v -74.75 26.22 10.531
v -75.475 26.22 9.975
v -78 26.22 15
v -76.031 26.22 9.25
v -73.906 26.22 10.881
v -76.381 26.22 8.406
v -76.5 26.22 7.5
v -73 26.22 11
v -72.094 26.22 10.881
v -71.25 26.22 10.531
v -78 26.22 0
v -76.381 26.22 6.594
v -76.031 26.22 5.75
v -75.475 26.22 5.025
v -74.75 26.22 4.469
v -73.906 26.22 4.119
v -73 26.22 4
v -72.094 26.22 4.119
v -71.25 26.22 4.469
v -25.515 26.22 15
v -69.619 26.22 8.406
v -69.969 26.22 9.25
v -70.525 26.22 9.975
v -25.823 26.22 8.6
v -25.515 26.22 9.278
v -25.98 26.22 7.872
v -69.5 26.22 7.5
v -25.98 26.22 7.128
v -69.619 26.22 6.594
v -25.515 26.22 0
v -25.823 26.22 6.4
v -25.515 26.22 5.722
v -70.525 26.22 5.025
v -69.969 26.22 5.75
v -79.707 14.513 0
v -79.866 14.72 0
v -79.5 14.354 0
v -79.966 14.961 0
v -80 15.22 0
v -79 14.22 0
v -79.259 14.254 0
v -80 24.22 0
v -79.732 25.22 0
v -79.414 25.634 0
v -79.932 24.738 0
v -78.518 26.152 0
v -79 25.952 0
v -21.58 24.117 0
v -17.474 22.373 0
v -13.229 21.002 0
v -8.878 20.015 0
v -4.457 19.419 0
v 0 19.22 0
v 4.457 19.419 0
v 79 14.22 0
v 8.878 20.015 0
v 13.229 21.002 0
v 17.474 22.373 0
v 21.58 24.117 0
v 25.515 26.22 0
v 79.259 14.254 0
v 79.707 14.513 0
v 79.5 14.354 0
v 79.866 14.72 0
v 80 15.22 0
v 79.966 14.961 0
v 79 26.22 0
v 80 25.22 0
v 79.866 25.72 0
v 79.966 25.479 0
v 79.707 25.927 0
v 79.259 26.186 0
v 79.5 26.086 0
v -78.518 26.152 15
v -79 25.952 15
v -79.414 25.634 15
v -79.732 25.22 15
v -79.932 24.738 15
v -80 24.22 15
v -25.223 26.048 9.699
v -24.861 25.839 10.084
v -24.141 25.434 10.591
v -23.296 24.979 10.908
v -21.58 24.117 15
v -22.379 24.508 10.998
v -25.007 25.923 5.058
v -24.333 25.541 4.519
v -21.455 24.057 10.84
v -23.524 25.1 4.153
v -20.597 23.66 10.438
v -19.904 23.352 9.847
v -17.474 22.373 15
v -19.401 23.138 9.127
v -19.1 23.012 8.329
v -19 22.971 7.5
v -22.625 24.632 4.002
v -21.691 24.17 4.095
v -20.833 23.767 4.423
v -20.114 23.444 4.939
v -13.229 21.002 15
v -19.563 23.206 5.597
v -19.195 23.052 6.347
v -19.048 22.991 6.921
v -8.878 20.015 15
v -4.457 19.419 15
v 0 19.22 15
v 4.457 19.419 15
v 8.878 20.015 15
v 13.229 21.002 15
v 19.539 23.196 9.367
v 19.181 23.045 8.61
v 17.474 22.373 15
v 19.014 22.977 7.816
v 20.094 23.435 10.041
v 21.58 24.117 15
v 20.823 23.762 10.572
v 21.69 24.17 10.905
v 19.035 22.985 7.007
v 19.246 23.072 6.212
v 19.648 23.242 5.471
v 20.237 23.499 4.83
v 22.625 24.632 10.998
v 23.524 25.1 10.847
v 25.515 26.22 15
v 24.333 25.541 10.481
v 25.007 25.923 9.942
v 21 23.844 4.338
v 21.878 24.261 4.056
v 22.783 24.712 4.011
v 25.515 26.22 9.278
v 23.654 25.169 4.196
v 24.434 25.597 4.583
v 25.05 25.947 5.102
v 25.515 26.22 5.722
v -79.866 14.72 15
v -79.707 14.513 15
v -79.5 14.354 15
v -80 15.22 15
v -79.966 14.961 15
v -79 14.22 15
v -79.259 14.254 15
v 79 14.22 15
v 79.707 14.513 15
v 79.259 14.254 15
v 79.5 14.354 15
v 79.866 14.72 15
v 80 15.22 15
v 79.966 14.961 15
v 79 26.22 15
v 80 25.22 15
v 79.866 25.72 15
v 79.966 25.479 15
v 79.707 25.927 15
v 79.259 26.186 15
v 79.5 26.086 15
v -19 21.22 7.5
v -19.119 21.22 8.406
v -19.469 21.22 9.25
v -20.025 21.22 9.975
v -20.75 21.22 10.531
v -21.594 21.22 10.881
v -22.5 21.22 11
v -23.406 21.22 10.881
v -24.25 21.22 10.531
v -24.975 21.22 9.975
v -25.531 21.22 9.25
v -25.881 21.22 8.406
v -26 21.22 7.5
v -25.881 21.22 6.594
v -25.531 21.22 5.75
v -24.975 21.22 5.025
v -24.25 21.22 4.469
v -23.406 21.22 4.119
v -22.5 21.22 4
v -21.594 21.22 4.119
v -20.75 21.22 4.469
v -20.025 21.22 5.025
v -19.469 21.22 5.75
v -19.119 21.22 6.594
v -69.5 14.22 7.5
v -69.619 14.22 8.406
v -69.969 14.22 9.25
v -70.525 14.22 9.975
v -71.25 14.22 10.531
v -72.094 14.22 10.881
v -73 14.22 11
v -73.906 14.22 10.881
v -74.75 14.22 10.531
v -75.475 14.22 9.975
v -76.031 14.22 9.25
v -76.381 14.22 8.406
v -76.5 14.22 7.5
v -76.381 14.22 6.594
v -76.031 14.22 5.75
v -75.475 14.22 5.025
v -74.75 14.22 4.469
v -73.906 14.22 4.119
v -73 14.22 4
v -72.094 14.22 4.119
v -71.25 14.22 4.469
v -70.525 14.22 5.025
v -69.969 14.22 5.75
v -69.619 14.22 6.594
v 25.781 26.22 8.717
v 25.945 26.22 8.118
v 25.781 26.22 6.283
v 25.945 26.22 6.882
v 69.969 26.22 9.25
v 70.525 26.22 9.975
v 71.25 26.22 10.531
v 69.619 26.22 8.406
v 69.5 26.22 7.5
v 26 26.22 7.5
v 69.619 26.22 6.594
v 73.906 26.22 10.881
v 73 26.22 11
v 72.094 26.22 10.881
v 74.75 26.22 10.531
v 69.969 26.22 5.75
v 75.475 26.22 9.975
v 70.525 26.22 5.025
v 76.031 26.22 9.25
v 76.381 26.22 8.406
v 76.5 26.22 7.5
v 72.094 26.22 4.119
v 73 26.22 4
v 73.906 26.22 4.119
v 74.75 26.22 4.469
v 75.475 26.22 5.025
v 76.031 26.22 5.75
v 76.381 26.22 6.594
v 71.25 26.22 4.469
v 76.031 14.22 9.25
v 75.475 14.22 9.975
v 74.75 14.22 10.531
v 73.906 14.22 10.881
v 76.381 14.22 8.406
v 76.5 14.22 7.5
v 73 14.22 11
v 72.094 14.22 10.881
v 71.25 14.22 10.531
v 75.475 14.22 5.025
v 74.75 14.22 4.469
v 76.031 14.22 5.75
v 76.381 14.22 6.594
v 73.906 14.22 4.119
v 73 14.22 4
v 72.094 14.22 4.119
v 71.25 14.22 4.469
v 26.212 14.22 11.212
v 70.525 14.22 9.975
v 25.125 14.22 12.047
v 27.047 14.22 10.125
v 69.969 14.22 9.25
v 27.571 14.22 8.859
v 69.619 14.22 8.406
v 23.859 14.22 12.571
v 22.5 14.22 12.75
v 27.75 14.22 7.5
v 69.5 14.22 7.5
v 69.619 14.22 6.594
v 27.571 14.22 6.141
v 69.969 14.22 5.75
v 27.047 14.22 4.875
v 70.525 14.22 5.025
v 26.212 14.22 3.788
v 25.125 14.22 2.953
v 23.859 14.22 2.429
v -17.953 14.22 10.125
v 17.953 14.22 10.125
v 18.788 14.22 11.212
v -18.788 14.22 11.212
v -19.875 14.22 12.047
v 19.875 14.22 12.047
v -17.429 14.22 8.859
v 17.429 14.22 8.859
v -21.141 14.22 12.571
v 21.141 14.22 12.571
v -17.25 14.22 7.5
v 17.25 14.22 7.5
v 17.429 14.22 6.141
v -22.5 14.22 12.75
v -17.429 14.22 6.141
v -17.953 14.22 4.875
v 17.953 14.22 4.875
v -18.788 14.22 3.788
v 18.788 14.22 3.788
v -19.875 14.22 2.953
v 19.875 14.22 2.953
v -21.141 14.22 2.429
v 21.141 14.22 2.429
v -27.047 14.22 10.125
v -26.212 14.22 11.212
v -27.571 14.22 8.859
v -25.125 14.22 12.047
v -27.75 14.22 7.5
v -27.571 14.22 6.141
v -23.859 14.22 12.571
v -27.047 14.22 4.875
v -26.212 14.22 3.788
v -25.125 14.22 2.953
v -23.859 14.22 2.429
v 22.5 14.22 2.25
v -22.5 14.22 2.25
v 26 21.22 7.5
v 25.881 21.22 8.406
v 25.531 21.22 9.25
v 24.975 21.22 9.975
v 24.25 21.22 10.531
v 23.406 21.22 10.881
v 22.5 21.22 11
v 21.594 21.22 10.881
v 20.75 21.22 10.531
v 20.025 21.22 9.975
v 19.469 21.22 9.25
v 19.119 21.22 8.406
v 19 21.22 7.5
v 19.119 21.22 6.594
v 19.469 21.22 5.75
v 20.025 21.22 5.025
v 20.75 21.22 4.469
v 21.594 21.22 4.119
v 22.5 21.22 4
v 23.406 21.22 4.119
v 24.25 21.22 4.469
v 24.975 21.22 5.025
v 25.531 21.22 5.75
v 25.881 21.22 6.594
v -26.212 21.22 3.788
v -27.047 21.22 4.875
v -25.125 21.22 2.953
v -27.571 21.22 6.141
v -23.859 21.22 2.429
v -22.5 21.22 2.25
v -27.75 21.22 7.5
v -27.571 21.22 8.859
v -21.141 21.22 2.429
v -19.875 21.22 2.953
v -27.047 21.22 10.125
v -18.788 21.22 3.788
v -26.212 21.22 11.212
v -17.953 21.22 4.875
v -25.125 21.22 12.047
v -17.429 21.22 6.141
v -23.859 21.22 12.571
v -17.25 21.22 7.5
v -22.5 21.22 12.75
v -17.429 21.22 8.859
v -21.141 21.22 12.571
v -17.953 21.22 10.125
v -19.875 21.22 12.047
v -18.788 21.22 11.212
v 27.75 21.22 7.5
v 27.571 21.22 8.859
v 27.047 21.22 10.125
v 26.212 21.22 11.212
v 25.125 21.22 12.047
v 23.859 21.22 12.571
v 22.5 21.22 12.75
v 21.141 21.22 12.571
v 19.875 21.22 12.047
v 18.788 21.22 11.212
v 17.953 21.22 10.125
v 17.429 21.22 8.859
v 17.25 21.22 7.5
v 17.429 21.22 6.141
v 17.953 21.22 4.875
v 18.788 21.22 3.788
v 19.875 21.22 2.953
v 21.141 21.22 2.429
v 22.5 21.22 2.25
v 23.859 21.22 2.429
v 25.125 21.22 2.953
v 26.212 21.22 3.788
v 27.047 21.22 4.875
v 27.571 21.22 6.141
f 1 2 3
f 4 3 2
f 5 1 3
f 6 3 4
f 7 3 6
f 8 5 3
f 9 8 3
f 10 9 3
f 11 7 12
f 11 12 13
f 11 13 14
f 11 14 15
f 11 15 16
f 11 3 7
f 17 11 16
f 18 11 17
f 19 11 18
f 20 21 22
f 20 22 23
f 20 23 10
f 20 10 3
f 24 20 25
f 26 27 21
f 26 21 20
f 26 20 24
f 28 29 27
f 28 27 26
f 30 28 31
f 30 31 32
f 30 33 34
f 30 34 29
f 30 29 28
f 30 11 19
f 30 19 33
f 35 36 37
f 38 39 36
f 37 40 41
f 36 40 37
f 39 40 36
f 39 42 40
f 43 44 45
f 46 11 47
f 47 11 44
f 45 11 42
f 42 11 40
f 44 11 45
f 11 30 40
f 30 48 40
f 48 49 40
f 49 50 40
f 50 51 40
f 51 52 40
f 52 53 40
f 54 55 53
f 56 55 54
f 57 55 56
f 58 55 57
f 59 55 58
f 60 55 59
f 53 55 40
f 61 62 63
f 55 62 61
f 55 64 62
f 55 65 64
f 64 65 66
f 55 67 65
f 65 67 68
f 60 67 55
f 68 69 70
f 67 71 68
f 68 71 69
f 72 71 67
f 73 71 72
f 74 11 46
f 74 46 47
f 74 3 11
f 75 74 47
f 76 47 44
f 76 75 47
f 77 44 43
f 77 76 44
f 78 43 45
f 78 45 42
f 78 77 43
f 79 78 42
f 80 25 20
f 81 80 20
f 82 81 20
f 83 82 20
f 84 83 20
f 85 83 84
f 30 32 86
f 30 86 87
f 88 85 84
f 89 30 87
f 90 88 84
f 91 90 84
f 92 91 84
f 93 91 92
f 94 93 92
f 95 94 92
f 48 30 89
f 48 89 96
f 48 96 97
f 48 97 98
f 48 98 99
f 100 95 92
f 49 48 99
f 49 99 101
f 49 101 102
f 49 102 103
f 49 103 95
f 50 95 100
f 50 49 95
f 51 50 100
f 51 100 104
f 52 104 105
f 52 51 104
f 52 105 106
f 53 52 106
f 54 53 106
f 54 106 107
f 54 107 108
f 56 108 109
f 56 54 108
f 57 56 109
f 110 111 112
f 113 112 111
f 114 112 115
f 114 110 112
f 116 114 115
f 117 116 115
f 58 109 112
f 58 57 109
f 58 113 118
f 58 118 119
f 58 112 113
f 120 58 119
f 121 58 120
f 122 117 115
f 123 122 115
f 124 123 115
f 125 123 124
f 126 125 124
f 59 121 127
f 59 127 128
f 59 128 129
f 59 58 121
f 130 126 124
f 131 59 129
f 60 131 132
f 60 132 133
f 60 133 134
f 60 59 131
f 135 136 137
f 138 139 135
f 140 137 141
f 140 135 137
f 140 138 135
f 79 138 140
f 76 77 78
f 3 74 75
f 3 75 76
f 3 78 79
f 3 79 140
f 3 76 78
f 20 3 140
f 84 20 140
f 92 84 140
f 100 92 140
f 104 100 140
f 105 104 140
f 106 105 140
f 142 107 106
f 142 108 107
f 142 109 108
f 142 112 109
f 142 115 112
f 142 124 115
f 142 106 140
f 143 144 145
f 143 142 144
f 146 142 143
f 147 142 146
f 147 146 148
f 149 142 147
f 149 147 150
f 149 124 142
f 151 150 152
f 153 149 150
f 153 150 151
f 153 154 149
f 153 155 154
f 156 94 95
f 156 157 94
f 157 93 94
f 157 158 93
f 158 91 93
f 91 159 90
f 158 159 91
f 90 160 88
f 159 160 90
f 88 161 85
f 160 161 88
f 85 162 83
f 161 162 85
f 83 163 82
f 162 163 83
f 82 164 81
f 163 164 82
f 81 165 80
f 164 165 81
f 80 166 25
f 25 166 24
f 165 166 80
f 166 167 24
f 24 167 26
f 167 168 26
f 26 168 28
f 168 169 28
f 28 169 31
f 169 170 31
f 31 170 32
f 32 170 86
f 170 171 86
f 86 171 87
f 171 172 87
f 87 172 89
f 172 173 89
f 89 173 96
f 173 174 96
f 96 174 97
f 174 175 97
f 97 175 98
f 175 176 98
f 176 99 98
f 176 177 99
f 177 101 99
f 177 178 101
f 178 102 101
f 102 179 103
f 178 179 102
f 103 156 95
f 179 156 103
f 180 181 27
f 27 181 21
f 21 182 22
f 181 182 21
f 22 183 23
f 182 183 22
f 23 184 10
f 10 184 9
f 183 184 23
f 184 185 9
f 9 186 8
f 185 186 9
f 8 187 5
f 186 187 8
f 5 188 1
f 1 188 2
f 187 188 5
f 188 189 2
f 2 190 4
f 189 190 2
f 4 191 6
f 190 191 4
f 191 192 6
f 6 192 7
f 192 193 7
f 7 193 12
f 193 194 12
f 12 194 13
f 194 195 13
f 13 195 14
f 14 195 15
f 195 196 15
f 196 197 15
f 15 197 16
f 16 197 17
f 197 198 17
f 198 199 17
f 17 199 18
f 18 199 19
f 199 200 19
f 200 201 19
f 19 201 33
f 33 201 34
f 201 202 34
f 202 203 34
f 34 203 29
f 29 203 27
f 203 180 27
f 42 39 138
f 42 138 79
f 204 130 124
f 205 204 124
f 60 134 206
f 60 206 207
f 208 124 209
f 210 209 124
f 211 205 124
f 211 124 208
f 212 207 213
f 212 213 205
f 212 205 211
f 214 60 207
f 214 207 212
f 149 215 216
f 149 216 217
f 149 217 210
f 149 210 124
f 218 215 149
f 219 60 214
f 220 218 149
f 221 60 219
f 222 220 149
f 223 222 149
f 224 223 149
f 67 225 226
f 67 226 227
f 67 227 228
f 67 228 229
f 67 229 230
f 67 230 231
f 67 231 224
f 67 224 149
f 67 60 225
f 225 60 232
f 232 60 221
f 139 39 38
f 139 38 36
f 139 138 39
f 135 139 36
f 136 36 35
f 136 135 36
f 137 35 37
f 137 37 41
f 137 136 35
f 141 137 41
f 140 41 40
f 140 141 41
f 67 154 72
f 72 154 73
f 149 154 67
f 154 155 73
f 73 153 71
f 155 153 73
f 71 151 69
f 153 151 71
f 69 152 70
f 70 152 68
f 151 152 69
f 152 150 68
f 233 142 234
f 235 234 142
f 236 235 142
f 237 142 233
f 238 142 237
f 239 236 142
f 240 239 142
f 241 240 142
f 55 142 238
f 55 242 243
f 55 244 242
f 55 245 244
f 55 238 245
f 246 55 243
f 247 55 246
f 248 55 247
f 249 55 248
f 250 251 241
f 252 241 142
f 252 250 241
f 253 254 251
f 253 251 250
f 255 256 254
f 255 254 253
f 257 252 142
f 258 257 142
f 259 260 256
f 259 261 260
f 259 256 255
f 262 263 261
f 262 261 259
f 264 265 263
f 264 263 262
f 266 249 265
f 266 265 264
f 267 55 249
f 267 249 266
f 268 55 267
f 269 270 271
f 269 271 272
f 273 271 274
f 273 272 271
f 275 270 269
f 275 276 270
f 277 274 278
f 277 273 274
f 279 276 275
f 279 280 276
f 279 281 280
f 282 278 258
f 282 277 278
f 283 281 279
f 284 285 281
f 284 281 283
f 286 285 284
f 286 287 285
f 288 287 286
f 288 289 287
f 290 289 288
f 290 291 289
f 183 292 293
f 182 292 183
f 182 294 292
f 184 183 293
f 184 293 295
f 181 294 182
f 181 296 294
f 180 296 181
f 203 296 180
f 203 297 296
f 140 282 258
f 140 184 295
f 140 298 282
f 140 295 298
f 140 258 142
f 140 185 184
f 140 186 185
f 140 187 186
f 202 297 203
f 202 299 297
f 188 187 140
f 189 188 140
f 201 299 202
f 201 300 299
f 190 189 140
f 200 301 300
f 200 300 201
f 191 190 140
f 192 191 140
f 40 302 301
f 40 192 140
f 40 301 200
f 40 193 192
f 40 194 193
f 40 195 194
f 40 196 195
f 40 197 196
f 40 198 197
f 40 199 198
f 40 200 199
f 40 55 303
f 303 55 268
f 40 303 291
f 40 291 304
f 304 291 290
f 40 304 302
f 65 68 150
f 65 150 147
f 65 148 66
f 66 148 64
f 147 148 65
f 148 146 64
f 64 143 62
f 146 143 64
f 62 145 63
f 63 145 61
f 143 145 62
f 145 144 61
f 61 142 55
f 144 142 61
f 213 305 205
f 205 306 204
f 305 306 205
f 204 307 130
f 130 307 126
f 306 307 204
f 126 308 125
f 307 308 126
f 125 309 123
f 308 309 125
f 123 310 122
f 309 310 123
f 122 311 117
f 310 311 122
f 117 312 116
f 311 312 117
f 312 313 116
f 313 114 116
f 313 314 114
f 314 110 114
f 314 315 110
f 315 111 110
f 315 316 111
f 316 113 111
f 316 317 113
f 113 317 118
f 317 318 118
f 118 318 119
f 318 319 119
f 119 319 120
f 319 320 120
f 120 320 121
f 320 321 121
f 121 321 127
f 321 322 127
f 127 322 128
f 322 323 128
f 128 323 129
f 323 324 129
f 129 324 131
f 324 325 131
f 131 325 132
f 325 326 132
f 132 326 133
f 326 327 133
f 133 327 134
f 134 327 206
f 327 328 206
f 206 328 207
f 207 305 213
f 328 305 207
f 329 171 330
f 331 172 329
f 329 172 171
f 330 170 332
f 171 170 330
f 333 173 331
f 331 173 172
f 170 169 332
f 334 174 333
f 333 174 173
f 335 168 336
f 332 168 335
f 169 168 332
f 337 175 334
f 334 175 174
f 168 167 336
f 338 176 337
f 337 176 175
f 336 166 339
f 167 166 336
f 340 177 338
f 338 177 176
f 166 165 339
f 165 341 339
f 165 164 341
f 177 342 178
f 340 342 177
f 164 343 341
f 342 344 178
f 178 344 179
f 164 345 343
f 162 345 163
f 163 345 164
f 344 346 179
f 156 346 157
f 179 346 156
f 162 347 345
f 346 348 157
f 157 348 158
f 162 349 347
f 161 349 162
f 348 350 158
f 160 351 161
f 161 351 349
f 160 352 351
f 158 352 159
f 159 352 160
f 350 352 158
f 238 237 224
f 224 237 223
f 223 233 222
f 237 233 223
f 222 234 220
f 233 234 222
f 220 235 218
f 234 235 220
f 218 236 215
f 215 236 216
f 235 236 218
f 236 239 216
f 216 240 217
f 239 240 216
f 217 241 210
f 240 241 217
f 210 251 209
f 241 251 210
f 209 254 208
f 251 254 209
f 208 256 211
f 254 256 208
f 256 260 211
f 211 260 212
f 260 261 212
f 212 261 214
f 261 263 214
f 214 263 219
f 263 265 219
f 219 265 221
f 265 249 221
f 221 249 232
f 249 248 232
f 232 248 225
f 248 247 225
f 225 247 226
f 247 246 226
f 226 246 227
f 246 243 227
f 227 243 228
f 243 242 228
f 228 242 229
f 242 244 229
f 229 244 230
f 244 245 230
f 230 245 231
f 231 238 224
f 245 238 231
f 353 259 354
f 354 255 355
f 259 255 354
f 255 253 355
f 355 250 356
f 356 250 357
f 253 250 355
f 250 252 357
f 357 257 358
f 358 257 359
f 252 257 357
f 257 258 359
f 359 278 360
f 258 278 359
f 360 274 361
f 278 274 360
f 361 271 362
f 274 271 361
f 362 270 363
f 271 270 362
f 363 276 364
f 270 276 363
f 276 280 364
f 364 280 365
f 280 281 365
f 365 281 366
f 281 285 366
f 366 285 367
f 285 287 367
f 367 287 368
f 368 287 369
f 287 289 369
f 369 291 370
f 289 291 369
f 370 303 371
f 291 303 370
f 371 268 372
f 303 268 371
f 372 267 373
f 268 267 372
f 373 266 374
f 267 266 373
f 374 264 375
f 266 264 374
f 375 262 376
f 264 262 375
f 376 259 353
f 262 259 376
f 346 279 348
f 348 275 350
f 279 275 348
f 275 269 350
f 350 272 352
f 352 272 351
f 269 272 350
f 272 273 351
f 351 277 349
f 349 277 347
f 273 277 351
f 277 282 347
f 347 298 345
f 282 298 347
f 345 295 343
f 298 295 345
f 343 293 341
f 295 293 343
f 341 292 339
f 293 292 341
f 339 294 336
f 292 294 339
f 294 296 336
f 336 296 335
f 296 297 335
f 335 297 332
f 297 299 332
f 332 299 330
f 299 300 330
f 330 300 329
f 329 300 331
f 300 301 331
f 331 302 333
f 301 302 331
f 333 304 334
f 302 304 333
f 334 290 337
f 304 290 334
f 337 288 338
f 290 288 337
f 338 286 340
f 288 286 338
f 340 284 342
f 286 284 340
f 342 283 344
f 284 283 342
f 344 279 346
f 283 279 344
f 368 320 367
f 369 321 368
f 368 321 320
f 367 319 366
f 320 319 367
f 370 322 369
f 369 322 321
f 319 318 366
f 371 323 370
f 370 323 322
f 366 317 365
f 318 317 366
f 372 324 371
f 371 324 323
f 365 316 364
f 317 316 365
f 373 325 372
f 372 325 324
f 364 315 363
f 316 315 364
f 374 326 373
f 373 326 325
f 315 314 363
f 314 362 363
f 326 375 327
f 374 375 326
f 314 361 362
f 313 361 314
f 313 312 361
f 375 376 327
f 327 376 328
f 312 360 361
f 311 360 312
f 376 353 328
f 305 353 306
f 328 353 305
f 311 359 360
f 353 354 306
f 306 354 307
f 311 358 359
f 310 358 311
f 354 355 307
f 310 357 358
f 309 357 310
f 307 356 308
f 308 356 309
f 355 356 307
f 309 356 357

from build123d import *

# Parameters (mm, degrees)
SKETCH005_R      = 5.25
EXTRUDE005_DEPTH = 7
SKETCH004_R      = 3.5
EXTRUDE004_DEPTH = 50
EXTRUDE003_DEPTH = 15
FILLET_1_R       = 2
FILLET_2_R       = 1


with BuildPart() as extrude005:
    # Sketch005 (on Face10 of Cut002) → Extrude005 (new body)
    with BuildSketch(Plane.XZ.offset(-14.220068)):
        with Locations((-22.5, 7.5)):
            Circle(SKETCH005_R)
        with Locations((22.5, 7.5)):
            Circle(SKETCH005_R)
    extrude(amount=-EXTRUDE005_DEPTH)


with BuildPart() as extrude004:
    # Sketch004 (on Face5 of Extrude003) → Extrude004 (new body)
    with BuildSketch(Plane.XZ.offset(-14.220068)):
        with Locations((-73, 7.5)):
            Circle(SKETCH004_R)
        with Locations((73, 7.5)):
            Circle(SKETCH004_R)
        with Locations((-22.5, 7.5)):
            Circle(SKETCH004_R)
        with Locations((22.5, 7.5)):
            Circle(SKETCH004_R)
    extrude(amount=-EXTRUDE004_DEPTH)


with BuildPart() as fillet_body:
    # Sketch003 → Extrude003 (new body)
    with BuildSketch(Plane.XY):
        with BuildLine():
            Line((-80, 26.220068), (-25.514702, 26.220068))
            ThreePointArc((-25.514702, 26.220068), (0, 19.220068), (25.514702, 26.220068))
            Line((25.514702, 26.220068), (80, 26.220068))
            Line((80, 26.220068), (80, 14.220068))
            Line((80, 14.220068), (-80, 14.220068))
            Line((-80, 14.220068), (-80, 26.220068))
        make_face()
    extrude(amount=EXTRUDE003_DEPTH)

    # Cut002: cut Extrude004
    add(extrude004.part, mode=Mode.SUBTRACT)

    # Cut003: cut Extrude005
    add(extrude005.part, mode=Mode.SUBTRACT)

    # Fillet 1
    fillet_1_edges = [fillet_body.edges().sort_by_distance(p)[0] for p in [
        (-80, 26.220068, 7.5),
    ]]
    fillet(fillet_1_edges, radius=FILLET_1_R)

    # Fillet 2
    fillet_2_edges = [fillet_body.edges().sort_by_distance(p)[0] for p in [
        (-80, 14.220068, 7.5),
        (80, 26.220068, 7.5),
        (80, 14.220068, 7.5),
    ]]
    fillet(fillet_2_edges, radius=FILLET_2_R)


solid = fillet_body.part
